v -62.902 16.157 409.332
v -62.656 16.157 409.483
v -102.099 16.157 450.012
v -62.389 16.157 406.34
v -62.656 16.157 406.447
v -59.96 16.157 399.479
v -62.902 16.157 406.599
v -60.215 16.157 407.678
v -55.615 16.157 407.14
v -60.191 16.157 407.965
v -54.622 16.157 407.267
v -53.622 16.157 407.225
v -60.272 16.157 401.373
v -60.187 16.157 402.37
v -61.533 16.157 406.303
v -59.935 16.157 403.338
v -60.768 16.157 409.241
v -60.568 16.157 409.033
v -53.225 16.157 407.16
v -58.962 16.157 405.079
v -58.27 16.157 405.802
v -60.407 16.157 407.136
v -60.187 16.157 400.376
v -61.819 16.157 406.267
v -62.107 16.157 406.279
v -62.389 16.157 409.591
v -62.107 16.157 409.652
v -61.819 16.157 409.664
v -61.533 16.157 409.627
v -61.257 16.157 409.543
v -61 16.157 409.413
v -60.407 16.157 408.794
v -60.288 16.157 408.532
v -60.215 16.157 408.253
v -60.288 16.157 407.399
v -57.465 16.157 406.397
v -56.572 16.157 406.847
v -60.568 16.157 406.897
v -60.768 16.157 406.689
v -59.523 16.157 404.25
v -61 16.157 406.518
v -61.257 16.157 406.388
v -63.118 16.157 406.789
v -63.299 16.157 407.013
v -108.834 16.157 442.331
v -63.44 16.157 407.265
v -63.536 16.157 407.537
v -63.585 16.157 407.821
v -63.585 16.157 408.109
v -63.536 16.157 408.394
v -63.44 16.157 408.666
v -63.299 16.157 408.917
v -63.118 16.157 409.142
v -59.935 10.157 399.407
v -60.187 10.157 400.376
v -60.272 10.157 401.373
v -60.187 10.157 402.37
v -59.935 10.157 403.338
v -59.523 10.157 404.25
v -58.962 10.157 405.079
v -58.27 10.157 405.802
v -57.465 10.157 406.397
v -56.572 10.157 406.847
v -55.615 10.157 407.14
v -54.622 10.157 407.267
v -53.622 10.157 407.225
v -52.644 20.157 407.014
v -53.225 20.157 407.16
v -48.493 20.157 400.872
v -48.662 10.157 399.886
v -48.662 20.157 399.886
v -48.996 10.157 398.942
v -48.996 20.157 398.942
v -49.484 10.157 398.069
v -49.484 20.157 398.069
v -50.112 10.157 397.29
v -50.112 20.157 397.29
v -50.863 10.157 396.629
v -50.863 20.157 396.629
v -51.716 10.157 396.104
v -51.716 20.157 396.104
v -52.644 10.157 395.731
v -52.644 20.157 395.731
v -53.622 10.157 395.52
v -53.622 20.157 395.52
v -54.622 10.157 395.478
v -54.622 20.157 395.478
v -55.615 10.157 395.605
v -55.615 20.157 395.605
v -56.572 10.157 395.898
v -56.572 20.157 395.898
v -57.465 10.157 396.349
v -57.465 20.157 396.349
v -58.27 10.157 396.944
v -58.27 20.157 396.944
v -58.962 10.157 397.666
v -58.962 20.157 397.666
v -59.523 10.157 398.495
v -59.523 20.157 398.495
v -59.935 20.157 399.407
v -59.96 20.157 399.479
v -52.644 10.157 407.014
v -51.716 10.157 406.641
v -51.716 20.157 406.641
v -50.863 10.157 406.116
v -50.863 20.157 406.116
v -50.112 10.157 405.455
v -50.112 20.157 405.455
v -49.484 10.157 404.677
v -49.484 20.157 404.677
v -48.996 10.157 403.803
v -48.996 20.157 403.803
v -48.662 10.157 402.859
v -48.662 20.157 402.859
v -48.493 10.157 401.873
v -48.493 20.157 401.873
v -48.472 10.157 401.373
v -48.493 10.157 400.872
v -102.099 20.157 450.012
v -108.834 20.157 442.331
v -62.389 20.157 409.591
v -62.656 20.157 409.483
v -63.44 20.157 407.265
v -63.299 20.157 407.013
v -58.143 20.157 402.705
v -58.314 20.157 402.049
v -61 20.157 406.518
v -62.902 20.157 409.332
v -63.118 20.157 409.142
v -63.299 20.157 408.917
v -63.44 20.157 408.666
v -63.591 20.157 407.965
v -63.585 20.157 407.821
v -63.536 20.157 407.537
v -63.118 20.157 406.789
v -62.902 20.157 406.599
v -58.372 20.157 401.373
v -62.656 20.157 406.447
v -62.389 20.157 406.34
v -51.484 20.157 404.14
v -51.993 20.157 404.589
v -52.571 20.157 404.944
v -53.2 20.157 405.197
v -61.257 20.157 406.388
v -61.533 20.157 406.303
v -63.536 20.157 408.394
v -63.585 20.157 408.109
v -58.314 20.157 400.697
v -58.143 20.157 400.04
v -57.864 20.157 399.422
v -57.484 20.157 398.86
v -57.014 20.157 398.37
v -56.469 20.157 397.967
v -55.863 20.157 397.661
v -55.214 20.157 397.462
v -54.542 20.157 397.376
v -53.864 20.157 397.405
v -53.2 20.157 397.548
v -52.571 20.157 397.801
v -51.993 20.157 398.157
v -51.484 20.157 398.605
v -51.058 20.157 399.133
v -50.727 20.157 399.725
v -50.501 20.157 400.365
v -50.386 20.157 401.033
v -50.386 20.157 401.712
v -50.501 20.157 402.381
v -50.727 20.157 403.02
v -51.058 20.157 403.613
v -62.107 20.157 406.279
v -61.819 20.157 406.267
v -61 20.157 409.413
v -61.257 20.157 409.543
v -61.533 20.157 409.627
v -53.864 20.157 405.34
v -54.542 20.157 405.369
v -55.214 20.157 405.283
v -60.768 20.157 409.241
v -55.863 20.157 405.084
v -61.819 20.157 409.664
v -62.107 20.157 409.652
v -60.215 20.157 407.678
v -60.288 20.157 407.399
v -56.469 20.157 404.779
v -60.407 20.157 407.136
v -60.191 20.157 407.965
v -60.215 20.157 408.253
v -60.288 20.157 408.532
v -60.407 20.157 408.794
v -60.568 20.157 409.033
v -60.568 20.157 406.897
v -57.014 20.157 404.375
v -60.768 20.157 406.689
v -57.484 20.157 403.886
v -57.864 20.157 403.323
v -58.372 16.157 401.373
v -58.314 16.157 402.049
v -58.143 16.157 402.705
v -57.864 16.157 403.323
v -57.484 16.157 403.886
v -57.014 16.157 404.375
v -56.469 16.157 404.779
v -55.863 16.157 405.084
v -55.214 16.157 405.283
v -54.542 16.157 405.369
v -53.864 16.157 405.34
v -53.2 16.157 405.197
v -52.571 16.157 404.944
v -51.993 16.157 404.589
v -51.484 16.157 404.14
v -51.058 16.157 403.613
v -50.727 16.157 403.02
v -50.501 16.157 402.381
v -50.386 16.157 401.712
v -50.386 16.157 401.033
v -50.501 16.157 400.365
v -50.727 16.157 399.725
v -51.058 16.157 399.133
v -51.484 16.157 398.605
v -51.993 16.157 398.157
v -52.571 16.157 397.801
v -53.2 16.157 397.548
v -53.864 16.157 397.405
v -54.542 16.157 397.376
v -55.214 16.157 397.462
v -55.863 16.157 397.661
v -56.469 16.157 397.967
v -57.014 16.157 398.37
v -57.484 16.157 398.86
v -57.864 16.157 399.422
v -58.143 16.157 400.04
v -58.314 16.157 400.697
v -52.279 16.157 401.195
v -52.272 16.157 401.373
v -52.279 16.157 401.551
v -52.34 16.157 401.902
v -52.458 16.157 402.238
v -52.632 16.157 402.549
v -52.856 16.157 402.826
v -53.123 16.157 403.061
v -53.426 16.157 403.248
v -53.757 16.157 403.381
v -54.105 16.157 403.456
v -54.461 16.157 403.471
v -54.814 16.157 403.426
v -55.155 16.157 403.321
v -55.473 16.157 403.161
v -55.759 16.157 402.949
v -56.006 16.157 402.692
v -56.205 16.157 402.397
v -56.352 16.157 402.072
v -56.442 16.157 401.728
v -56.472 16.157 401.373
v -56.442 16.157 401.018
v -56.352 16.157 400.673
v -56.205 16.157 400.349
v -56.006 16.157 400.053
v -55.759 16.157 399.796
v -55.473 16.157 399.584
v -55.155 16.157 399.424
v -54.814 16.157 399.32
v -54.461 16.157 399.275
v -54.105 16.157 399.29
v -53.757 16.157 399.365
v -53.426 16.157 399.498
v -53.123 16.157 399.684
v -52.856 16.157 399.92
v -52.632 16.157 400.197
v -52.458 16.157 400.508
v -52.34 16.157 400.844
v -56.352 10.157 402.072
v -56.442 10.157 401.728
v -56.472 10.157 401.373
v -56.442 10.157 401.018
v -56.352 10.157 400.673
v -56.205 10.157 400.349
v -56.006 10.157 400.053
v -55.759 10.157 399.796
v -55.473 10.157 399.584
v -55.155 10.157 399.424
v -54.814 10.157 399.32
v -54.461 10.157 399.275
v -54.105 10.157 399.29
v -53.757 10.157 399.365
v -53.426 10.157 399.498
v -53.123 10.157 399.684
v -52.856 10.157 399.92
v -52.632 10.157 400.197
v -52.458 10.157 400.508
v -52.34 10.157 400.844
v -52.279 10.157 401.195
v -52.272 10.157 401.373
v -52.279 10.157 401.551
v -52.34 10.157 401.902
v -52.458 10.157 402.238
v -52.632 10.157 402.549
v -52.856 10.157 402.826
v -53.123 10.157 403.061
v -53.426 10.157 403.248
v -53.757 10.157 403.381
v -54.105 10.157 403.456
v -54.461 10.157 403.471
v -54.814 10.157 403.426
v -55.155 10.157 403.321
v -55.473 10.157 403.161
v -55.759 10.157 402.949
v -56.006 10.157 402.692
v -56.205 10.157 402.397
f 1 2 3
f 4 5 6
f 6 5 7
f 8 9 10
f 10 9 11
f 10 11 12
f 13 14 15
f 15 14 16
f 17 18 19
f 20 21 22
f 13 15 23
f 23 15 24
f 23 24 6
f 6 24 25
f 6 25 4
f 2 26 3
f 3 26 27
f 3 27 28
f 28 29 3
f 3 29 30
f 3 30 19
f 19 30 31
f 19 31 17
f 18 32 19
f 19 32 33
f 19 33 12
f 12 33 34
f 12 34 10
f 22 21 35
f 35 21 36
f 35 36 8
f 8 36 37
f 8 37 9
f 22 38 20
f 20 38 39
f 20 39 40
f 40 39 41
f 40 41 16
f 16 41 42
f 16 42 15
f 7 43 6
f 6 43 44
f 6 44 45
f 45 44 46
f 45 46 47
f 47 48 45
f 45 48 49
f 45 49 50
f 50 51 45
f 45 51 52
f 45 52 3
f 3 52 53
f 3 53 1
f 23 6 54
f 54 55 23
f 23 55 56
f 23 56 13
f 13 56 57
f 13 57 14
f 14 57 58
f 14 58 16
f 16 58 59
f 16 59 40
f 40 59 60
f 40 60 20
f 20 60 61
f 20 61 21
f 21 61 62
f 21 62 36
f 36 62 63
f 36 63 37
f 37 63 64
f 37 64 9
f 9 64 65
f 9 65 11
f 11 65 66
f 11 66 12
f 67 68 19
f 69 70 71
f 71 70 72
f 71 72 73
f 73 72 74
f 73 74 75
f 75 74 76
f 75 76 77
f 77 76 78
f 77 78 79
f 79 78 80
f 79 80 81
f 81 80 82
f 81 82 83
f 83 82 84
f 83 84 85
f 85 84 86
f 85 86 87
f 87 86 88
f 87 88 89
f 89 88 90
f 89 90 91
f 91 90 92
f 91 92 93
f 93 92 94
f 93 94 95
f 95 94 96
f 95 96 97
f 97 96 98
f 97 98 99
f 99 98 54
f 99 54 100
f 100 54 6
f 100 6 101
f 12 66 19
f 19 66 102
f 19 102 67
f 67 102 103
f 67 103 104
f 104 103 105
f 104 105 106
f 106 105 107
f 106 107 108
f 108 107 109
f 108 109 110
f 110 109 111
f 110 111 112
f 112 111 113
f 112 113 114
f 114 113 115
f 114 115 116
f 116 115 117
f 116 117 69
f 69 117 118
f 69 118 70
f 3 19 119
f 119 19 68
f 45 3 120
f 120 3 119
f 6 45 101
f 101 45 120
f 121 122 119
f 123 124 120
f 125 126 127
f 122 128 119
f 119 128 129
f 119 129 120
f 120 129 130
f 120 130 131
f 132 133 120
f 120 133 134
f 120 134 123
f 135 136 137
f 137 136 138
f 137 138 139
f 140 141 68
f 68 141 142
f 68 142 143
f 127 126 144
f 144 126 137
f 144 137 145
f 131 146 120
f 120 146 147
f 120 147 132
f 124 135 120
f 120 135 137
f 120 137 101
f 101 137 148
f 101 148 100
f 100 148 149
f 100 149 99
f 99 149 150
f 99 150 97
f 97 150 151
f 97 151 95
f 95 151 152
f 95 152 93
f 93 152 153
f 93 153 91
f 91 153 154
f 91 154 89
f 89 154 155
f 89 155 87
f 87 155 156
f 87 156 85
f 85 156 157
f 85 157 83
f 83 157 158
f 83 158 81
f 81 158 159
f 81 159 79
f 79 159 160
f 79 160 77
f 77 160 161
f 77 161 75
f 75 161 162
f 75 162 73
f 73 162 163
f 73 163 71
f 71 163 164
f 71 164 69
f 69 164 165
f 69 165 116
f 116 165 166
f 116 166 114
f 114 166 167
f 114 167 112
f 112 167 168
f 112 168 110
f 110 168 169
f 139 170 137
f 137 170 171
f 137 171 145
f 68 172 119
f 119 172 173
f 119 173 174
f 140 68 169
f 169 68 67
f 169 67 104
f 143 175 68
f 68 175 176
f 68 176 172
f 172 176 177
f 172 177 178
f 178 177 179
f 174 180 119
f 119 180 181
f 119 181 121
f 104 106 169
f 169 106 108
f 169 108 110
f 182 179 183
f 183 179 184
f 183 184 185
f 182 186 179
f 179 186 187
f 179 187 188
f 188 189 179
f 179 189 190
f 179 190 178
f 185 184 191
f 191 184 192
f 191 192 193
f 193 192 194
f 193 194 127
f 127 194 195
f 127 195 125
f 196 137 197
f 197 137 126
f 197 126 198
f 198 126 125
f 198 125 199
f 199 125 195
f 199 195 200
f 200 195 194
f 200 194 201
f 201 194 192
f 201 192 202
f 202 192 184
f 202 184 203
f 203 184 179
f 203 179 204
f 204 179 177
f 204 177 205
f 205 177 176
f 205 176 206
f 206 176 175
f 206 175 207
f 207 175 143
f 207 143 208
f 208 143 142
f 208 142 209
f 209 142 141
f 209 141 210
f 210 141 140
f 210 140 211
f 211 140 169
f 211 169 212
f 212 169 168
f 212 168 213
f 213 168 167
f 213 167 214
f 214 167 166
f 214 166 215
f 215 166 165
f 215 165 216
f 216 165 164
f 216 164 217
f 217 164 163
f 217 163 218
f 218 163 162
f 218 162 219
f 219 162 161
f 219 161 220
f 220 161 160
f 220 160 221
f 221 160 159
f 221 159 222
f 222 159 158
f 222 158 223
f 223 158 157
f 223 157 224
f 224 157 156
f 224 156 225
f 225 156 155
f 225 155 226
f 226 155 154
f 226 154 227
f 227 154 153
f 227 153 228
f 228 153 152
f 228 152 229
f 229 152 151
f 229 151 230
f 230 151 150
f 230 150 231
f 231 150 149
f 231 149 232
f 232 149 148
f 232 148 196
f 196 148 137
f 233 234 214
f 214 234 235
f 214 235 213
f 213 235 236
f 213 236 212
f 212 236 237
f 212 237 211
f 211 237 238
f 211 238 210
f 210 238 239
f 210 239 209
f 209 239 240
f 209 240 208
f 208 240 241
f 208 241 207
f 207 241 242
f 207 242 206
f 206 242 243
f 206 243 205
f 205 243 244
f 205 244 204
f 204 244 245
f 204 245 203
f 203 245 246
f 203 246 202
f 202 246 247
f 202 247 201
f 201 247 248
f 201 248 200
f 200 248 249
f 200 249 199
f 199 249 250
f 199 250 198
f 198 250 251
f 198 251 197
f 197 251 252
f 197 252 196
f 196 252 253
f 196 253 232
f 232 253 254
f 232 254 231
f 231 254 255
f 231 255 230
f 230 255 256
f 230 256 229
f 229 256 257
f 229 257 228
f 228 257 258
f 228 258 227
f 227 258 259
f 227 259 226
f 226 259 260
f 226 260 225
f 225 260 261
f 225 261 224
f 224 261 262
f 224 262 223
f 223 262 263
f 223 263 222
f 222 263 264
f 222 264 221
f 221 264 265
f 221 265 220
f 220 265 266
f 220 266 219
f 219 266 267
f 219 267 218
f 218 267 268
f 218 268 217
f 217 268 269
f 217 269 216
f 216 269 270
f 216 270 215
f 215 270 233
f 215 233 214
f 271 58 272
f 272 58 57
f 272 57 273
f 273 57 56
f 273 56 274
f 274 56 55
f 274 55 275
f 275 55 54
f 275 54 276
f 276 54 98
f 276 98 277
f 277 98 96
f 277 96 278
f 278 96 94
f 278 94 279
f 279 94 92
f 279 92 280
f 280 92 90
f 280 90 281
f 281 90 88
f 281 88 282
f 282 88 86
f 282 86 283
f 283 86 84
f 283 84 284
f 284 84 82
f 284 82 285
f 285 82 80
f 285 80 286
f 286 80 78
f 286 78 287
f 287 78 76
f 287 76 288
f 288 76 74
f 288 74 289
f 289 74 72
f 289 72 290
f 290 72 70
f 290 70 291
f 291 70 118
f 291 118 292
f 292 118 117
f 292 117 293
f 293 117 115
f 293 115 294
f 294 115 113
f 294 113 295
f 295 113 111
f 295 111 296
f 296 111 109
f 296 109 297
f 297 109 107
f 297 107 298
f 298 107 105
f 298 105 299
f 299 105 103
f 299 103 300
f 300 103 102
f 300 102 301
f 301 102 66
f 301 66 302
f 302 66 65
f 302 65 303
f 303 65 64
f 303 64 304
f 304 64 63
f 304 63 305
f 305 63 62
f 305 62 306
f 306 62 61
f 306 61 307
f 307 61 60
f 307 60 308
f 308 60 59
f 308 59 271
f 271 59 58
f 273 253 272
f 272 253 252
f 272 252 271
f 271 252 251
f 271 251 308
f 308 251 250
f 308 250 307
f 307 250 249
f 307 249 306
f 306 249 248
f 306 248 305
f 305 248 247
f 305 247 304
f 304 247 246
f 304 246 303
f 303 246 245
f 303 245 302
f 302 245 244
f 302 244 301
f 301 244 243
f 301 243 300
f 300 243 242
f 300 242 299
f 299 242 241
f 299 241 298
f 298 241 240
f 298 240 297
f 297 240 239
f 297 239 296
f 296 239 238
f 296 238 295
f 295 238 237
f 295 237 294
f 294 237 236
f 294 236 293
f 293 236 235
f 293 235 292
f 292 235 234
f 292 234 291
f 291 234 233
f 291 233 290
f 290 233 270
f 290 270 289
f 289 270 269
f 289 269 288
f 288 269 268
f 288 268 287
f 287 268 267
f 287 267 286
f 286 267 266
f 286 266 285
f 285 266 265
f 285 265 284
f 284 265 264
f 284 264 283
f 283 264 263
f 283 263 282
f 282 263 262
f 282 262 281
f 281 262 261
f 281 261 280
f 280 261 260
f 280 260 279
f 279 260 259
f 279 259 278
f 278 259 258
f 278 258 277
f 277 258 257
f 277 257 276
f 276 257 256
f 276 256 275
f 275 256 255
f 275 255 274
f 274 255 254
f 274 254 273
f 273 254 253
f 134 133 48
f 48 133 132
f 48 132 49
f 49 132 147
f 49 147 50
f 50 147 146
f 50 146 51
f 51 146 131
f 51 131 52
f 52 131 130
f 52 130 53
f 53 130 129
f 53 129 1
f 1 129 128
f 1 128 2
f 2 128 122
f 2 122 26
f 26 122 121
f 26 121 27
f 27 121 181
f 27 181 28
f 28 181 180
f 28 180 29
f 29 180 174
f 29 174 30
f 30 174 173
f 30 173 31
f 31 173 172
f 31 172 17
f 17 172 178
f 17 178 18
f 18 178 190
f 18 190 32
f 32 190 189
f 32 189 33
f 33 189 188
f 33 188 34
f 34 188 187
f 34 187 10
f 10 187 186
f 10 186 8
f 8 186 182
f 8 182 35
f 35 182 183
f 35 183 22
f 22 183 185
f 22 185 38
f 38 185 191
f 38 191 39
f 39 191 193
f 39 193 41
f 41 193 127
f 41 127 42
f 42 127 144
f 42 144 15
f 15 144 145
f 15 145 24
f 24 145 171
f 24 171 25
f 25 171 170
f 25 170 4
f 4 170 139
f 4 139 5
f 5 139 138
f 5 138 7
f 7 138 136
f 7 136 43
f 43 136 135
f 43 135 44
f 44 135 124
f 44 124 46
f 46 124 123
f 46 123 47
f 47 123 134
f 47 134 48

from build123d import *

# Parameters (mm, degrees)
EXTRUDE_START       = -4
EXTRUDE_1_OUTLINE_R = 4
EXTRUDE_1_DEPTH     = 4
EXTRUDE_START_2     = 6
SKETCH_2_R          = 5.9
SKETCH_2_R_2        = 2.1
EXTRUDE_2_DEPTH     = 6
SKETCH_3_R          = 1.7
CUT_EXTRUDE_1_DEPTH = 4


# Read off the part's stored shape, not the designer's step: 填料-伸長1
with BuildPart() as part:
    # 填料-伸長1 outline → 填料-伸長1 (new body)
    with BuildSketch(Plane(origin=(0, 20.156954032, 0), x_dir=(1, 0, 0), z_dir=(0, 1, 0)).offset(EXTRUDE_START)):
        with BuildLine():
            Line((-102.099122719, -450.012320429), (-53.224889363, -407.160140626))
            ThreePointArc((-53.224889363, -407.160140626), (-49.935495794, -397.483024153), (-59.959608209, -399.47898597))
            Line((-59.959608209, -399.47898597), (-108.833841565, -442.331165772))
            Line((-108.833841565, -442.331165772), (-102.099122719, -450.012320429))
        make_face()
        with Locations((-54.371772361, -401.372683552)):
            Circle(EXTRUDE_1_OUTLINE_R, mode=Mode.SUBTRACT)
    extrude(amount=EXTRUDE_1_DEPTH)

    # 草圖2 → 填料-伸長2 (add)
    with BuildSketch(Plane.XZ.offset(-16.156954032).offset(EXTRUDE_START_2)):
        with Locations(Location((-54.371772361, 401.372683552, 0), (0, 0, 198.721335886))):
            Circle(SKETCH_2_R)
        with Locations((-54.371772361, 401.372683552)):
            Circle(SKETCH_2_R_2, mode=Mode.SUBTRACT)
    extrude(amount=-EXTRUDE_2_DEPTH)

    # 草圖3 → 除料-伸長1 (cut)
    with BuildSketch(Plane.XZ.offset(-16.156954032)):
        with Locations((-61.890885185, 407.965326598)):
            Circle(SKETCH_3_R)
    extrude(amount=-CUT_EXTRUDE_1_DEPTH, mode=Mode.SUBTRACT)


solid = part.part
